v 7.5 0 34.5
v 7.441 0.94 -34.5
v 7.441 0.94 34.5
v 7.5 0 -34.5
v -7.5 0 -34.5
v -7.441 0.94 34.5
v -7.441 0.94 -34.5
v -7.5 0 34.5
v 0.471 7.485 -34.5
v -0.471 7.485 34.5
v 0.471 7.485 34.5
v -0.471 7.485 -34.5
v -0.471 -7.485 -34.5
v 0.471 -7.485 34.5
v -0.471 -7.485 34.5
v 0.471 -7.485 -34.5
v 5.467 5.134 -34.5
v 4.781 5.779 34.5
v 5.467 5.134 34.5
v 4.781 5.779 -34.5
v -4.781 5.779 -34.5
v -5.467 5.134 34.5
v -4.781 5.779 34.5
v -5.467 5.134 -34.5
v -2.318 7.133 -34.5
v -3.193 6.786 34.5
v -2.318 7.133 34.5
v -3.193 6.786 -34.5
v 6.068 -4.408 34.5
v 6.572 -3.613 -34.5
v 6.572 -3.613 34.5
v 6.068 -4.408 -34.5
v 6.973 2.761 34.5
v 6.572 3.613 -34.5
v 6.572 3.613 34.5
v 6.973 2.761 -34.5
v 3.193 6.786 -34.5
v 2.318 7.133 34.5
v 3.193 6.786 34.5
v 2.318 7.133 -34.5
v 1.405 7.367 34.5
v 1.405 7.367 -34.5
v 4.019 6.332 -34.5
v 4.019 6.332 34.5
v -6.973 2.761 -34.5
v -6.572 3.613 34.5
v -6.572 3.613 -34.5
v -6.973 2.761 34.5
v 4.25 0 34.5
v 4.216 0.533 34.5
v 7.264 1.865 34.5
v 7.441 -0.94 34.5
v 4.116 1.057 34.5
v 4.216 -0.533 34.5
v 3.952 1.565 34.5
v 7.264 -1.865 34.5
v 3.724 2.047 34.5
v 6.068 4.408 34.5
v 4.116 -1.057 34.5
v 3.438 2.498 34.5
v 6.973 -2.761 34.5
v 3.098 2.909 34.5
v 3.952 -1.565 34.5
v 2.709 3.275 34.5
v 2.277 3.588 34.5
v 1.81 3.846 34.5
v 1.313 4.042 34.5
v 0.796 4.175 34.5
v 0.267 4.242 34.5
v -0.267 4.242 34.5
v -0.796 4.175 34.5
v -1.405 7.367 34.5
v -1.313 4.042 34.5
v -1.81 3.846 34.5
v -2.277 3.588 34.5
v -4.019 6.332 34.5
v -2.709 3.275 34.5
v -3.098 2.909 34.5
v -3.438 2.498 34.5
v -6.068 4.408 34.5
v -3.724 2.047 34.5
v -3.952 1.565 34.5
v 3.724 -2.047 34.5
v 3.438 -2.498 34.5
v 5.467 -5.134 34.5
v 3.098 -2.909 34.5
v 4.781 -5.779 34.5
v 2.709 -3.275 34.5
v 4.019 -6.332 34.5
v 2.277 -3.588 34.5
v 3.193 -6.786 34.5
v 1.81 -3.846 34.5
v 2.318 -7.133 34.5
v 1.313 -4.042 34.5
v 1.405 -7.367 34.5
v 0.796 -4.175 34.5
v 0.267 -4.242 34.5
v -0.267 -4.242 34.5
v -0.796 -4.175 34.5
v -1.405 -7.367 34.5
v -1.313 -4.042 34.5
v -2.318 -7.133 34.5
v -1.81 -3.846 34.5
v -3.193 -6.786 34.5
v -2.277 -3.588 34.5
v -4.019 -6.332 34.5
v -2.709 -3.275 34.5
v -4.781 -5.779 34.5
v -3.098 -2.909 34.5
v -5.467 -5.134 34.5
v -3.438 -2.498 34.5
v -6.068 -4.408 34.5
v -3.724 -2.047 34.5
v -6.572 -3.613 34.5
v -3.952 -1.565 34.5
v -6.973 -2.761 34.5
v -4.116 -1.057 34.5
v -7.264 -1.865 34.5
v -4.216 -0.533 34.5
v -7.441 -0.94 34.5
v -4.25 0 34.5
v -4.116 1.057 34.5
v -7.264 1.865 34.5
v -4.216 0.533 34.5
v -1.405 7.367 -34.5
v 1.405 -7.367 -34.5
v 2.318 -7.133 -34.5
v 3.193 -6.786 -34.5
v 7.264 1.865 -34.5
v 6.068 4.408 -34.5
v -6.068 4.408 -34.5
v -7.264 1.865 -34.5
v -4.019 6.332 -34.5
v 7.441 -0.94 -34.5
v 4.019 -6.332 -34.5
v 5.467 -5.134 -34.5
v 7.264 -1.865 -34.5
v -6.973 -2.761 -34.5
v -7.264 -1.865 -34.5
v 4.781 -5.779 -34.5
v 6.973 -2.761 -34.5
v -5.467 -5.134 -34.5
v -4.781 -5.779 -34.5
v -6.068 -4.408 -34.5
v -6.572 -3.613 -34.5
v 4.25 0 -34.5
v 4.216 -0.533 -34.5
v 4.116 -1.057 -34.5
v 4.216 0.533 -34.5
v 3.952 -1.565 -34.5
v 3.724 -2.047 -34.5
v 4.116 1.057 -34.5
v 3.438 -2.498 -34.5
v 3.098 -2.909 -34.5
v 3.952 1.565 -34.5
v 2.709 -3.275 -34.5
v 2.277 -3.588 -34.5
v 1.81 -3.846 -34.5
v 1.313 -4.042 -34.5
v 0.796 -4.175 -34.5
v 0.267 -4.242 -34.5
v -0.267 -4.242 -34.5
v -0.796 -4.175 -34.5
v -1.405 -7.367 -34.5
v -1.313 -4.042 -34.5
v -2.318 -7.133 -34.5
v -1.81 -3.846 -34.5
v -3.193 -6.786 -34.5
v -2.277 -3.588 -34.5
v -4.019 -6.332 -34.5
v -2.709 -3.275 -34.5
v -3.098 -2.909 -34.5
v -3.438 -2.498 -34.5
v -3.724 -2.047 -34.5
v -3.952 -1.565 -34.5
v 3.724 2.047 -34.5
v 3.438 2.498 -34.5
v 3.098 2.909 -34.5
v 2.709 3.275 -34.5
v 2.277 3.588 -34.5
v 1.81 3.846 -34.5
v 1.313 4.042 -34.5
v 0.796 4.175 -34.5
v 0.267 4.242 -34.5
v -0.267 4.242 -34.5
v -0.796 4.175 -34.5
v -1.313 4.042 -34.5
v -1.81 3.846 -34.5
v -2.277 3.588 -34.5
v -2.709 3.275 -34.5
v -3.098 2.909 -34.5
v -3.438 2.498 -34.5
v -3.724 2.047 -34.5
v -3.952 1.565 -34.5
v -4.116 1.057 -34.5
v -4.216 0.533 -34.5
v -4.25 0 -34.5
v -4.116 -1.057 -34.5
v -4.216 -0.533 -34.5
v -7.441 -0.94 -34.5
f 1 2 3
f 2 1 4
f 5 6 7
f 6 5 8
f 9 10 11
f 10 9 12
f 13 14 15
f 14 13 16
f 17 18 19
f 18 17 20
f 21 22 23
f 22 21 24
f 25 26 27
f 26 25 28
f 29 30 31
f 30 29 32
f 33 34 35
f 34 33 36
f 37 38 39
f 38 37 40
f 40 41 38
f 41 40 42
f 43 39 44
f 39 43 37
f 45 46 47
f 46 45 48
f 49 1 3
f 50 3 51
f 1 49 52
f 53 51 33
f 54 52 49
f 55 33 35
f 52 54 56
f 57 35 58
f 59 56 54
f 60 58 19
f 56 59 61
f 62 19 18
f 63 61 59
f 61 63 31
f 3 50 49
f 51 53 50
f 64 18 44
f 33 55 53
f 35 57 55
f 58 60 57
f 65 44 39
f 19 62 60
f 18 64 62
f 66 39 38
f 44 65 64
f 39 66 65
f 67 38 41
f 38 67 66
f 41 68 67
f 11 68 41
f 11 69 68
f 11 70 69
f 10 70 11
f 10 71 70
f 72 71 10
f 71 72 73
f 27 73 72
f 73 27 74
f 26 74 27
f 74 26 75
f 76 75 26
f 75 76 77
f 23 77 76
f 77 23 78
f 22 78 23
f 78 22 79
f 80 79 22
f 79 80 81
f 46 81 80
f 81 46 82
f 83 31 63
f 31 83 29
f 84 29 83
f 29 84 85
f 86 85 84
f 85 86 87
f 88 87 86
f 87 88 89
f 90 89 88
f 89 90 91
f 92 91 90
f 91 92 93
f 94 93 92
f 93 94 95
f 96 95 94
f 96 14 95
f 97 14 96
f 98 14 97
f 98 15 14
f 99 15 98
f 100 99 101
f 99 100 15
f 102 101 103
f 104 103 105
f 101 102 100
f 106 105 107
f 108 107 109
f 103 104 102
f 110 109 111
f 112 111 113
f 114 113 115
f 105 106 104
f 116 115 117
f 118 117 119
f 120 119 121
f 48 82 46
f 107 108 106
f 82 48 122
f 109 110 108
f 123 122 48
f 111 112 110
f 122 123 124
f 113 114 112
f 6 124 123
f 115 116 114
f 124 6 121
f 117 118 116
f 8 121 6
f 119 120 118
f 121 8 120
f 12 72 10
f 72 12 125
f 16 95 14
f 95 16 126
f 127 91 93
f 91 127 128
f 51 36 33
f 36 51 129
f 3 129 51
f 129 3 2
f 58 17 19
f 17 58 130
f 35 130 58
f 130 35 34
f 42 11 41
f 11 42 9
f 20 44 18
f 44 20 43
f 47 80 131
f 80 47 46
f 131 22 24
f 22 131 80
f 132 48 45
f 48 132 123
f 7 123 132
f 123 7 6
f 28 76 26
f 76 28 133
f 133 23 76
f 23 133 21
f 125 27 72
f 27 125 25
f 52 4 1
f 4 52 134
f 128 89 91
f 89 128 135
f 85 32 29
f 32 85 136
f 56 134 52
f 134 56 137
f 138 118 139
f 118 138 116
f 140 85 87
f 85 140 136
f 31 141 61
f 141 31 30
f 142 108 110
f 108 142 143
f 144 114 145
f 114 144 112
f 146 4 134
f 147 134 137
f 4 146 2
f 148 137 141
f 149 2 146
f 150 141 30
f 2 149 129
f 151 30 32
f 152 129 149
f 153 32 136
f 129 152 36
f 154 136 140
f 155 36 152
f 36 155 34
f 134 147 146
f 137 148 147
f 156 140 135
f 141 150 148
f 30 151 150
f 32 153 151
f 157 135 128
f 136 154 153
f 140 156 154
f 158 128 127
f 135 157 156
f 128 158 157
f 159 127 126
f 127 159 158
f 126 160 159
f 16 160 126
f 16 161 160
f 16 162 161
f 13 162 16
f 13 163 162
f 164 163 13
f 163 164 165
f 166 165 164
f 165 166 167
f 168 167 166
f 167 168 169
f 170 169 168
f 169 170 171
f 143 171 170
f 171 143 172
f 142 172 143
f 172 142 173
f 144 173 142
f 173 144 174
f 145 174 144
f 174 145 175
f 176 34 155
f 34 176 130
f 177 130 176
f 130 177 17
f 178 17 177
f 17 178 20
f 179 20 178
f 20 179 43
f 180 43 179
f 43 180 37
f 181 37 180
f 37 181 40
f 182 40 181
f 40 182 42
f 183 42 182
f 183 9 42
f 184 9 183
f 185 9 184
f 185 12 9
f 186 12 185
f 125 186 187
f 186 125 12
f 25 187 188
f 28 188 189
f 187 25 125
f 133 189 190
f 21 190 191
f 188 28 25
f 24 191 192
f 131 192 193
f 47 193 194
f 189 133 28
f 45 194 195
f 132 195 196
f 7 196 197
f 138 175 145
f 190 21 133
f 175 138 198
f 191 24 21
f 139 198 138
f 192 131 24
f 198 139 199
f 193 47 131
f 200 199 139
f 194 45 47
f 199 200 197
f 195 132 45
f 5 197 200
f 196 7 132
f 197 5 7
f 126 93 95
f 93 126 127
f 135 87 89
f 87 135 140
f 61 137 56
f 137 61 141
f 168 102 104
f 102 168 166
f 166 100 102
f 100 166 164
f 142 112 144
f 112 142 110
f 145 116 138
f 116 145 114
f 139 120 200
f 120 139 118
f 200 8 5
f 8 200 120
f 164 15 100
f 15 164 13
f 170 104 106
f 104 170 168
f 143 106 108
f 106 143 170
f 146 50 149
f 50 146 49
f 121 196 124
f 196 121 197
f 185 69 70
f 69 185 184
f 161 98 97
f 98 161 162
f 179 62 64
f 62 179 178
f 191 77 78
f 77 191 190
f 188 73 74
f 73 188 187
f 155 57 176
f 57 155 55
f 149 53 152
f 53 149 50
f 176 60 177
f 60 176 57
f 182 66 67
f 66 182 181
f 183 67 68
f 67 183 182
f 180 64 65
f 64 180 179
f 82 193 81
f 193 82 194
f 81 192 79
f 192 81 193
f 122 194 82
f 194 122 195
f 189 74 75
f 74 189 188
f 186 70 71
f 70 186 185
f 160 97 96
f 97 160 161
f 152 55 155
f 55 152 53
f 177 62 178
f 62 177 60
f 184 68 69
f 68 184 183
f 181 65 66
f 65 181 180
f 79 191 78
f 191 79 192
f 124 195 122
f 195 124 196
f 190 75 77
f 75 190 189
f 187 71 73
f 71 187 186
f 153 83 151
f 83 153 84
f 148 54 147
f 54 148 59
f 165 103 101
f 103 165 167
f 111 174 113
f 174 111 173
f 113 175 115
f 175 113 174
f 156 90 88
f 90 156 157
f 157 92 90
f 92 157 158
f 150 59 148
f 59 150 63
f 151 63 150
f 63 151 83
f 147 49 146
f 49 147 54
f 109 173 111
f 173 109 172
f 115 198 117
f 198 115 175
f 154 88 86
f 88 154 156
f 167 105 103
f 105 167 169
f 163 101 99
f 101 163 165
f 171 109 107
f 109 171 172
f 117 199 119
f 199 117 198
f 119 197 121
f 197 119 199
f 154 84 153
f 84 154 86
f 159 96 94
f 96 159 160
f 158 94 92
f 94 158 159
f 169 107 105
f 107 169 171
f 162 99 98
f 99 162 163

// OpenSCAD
$fn = 50;


difference() {
	union() {
		translate(v = [0, 0, -34.5000000000]) {
			cylinder(h = 69, r = 7.5000000000);
		}
	}
	union() {
		translate(v = [0, 0, -100.0000000000]) {
			cylinder(h = 200, r = 4.2500000000);
		}
	}
}
